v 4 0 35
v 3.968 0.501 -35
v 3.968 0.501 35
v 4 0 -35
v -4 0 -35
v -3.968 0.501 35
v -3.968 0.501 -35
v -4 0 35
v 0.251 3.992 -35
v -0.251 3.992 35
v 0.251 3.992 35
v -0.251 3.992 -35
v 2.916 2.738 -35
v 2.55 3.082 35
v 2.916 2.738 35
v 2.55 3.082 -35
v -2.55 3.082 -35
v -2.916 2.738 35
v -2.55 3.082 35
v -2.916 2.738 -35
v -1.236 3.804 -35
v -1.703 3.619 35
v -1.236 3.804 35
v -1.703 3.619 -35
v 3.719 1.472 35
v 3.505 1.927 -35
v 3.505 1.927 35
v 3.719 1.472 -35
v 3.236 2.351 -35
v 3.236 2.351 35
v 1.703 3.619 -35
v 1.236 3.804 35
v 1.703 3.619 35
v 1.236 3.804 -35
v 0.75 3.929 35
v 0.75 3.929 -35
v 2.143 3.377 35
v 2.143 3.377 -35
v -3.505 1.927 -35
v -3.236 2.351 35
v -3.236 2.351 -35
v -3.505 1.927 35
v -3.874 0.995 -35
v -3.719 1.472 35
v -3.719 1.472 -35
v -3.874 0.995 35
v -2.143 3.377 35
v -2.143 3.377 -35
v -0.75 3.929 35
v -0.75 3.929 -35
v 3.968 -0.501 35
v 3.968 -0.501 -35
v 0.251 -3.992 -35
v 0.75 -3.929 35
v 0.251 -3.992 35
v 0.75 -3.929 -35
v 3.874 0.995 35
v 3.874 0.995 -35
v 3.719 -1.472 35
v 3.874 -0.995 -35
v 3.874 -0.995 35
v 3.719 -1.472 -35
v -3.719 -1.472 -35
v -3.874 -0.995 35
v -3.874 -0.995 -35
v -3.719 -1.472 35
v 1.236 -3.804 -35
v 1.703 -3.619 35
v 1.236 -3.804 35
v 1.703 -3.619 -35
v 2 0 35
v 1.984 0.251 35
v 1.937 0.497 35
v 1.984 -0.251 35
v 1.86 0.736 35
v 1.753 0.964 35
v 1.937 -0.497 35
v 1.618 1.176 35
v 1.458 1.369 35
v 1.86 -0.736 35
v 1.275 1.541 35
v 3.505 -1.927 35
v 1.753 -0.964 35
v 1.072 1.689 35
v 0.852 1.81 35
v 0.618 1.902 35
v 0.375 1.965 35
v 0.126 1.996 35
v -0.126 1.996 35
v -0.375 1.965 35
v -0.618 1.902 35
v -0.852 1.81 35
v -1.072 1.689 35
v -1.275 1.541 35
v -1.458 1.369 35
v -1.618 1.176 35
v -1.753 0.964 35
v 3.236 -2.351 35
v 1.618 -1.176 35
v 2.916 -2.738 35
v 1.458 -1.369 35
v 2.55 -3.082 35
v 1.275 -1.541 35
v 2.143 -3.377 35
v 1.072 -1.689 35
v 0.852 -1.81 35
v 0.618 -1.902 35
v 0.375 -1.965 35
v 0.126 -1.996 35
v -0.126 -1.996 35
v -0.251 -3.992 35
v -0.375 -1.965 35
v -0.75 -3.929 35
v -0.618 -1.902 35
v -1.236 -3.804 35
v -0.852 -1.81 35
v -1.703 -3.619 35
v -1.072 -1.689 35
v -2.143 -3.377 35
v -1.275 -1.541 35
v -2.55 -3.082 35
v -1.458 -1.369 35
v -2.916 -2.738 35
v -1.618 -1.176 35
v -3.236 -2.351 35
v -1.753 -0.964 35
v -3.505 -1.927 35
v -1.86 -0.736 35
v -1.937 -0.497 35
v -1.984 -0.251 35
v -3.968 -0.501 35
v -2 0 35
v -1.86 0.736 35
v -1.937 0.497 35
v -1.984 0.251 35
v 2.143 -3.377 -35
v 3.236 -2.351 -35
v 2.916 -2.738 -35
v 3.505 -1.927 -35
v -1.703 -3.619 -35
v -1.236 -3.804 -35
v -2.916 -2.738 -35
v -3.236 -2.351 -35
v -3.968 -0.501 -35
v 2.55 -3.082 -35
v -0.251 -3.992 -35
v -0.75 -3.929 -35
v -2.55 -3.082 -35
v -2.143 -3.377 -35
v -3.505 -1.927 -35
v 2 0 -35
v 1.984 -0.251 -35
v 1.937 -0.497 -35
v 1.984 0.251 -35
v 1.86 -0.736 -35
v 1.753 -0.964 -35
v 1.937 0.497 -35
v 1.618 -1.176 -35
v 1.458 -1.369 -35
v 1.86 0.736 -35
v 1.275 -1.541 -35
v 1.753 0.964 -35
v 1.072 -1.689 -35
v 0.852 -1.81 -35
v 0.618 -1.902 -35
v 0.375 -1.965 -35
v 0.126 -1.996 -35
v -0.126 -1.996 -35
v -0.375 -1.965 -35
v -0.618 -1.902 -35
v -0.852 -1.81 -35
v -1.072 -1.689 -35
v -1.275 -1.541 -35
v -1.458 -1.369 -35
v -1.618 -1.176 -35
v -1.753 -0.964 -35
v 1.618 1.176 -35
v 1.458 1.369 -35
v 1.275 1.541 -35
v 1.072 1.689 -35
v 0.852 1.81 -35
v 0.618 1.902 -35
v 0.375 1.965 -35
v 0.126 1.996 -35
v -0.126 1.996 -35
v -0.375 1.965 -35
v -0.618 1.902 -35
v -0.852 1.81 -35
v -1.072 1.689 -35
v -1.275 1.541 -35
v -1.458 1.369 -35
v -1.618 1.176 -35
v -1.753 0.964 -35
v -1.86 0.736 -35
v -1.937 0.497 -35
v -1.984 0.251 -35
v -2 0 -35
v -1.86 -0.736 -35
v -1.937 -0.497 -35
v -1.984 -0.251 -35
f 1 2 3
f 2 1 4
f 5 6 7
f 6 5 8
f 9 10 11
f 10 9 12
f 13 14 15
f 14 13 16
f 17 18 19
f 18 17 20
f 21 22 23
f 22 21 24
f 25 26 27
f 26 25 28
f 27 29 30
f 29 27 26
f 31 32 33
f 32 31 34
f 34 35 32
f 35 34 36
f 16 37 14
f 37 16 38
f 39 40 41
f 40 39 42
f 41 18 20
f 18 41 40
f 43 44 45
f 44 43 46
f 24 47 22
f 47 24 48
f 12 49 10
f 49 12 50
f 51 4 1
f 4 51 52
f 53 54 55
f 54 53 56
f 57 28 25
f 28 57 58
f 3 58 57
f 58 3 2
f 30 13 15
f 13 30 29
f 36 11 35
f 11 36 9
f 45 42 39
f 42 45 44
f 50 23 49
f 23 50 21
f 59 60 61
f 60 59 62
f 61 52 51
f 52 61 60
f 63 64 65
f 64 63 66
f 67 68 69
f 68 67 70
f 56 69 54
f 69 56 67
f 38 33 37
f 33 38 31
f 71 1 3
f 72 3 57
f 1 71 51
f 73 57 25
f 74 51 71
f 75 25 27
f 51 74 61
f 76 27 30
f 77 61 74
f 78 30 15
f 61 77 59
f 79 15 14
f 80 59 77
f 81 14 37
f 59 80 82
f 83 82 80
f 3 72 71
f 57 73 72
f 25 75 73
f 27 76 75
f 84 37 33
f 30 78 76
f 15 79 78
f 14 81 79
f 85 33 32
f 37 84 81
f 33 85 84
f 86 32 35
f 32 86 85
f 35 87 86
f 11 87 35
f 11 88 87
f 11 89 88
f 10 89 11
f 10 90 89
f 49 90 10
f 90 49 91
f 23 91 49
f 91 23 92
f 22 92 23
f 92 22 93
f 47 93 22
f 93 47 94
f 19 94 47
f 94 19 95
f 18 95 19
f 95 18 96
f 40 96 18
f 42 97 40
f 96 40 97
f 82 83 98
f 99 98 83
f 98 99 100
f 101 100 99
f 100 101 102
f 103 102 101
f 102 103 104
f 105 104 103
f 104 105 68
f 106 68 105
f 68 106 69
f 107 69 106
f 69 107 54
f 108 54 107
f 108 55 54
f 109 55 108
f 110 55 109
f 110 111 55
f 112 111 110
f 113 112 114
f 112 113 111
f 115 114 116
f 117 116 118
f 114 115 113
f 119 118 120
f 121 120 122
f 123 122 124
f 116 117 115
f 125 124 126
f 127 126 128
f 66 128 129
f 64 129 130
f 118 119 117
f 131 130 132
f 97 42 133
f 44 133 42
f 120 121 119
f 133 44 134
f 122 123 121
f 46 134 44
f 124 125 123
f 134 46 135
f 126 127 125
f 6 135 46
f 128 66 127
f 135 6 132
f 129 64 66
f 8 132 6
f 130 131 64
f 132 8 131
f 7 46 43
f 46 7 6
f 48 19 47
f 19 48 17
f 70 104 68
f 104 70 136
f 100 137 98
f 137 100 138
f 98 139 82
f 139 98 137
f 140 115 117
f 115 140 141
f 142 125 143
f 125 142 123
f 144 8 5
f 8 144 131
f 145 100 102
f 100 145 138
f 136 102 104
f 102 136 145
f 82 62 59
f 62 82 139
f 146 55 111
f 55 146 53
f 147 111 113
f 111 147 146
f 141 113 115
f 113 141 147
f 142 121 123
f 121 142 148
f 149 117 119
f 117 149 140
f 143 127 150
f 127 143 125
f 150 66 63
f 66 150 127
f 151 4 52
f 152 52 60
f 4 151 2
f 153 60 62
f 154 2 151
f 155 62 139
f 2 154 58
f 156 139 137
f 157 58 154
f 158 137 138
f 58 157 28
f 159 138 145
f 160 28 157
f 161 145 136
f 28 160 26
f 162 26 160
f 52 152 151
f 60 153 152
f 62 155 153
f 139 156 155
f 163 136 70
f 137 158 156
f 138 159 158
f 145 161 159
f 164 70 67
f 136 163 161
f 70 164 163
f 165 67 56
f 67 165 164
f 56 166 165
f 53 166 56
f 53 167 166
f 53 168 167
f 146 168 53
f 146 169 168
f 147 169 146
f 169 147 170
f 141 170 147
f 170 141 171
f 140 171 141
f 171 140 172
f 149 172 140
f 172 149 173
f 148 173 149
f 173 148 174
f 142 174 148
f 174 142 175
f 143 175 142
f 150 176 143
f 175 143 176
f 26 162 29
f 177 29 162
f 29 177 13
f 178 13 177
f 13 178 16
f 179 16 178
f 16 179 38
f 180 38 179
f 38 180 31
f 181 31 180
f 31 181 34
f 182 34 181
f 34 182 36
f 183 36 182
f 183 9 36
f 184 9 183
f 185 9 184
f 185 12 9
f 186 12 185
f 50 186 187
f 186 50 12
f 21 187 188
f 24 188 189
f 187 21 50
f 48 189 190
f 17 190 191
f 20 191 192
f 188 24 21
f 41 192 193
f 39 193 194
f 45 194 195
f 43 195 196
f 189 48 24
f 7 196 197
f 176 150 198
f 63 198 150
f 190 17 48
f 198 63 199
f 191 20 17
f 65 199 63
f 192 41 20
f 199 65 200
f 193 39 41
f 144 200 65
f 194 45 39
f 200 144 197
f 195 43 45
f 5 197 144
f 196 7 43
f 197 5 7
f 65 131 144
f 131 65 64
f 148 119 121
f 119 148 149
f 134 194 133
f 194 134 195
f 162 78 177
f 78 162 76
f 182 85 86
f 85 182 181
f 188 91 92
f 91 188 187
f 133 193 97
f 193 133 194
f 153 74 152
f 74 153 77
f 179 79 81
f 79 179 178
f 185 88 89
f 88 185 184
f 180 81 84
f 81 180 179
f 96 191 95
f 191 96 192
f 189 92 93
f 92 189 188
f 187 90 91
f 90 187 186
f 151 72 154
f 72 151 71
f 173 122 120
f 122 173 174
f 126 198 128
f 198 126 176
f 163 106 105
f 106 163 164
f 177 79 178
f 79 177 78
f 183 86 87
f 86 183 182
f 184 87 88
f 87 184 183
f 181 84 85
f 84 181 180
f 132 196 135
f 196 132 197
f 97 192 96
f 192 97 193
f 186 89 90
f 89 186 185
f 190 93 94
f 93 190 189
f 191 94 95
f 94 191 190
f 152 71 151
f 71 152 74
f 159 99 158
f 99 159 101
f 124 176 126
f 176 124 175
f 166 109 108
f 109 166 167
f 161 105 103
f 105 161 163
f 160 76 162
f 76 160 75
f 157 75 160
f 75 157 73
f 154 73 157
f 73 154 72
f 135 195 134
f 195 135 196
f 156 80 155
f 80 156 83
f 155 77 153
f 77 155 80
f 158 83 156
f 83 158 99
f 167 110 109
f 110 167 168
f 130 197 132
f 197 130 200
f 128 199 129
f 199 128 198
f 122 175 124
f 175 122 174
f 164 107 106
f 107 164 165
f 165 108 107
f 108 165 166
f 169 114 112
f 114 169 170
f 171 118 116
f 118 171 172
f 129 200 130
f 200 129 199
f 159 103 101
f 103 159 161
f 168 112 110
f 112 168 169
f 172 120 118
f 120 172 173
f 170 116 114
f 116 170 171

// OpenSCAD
$fn = 50;


difference() {
	union() {
		translate(v = [0, 0, -35.0000000000]) {
			cylinder(h = 70, r = 4.0000000000);
		}
	}
	union() {
		translate(v = [0, 0, -100.0000000000]) {
			cylinder(h = 200, r = 2.0000000000);
		}
	}
}
